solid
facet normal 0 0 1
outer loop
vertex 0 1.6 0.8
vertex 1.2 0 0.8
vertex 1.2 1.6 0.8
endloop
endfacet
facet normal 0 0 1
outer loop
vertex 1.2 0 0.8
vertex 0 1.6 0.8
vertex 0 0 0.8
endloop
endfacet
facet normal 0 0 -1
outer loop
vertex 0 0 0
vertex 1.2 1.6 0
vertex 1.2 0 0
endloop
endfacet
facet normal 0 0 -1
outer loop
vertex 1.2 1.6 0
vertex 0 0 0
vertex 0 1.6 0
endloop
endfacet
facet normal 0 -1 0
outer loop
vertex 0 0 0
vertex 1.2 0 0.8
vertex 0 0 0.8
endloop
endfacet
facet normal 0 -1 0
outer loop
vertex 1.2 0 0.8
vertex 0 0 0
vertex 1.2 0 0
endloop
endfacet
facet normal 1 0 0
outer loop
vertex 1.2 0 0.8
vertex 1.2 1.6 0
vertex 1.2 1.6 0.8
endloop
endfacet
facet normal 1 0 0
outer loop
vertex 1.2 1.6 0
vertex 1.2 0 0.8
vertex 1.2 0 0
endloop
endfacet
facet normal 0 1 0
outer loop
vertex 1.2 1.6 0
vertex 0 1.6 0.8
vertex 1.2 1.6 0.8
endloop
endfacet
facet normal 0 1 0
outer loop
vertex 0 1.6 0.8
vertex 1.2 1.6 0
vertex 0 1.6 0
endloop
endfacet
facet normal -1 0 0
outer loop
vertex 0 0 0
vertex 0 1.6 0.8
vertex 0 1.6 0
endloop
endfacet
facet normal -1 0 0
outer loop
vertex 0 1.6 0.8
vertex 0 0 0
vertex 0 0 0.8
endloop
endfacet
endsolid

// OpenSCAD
/* Warning, this is a very basic generator with a lot of approximation 
input data : [WDFN, K2A, 1.2x1.6x0.8mm, 4, , A, C04-01014A]
generated by com.zoubworld.electronics.cad.model3d.Basic
Date : Sun Feb 15 10:50:49 CET 2026
*/

//body
color("black")
translate([0,0,0])
cube([1.2,1.6,0.8], center=false);
